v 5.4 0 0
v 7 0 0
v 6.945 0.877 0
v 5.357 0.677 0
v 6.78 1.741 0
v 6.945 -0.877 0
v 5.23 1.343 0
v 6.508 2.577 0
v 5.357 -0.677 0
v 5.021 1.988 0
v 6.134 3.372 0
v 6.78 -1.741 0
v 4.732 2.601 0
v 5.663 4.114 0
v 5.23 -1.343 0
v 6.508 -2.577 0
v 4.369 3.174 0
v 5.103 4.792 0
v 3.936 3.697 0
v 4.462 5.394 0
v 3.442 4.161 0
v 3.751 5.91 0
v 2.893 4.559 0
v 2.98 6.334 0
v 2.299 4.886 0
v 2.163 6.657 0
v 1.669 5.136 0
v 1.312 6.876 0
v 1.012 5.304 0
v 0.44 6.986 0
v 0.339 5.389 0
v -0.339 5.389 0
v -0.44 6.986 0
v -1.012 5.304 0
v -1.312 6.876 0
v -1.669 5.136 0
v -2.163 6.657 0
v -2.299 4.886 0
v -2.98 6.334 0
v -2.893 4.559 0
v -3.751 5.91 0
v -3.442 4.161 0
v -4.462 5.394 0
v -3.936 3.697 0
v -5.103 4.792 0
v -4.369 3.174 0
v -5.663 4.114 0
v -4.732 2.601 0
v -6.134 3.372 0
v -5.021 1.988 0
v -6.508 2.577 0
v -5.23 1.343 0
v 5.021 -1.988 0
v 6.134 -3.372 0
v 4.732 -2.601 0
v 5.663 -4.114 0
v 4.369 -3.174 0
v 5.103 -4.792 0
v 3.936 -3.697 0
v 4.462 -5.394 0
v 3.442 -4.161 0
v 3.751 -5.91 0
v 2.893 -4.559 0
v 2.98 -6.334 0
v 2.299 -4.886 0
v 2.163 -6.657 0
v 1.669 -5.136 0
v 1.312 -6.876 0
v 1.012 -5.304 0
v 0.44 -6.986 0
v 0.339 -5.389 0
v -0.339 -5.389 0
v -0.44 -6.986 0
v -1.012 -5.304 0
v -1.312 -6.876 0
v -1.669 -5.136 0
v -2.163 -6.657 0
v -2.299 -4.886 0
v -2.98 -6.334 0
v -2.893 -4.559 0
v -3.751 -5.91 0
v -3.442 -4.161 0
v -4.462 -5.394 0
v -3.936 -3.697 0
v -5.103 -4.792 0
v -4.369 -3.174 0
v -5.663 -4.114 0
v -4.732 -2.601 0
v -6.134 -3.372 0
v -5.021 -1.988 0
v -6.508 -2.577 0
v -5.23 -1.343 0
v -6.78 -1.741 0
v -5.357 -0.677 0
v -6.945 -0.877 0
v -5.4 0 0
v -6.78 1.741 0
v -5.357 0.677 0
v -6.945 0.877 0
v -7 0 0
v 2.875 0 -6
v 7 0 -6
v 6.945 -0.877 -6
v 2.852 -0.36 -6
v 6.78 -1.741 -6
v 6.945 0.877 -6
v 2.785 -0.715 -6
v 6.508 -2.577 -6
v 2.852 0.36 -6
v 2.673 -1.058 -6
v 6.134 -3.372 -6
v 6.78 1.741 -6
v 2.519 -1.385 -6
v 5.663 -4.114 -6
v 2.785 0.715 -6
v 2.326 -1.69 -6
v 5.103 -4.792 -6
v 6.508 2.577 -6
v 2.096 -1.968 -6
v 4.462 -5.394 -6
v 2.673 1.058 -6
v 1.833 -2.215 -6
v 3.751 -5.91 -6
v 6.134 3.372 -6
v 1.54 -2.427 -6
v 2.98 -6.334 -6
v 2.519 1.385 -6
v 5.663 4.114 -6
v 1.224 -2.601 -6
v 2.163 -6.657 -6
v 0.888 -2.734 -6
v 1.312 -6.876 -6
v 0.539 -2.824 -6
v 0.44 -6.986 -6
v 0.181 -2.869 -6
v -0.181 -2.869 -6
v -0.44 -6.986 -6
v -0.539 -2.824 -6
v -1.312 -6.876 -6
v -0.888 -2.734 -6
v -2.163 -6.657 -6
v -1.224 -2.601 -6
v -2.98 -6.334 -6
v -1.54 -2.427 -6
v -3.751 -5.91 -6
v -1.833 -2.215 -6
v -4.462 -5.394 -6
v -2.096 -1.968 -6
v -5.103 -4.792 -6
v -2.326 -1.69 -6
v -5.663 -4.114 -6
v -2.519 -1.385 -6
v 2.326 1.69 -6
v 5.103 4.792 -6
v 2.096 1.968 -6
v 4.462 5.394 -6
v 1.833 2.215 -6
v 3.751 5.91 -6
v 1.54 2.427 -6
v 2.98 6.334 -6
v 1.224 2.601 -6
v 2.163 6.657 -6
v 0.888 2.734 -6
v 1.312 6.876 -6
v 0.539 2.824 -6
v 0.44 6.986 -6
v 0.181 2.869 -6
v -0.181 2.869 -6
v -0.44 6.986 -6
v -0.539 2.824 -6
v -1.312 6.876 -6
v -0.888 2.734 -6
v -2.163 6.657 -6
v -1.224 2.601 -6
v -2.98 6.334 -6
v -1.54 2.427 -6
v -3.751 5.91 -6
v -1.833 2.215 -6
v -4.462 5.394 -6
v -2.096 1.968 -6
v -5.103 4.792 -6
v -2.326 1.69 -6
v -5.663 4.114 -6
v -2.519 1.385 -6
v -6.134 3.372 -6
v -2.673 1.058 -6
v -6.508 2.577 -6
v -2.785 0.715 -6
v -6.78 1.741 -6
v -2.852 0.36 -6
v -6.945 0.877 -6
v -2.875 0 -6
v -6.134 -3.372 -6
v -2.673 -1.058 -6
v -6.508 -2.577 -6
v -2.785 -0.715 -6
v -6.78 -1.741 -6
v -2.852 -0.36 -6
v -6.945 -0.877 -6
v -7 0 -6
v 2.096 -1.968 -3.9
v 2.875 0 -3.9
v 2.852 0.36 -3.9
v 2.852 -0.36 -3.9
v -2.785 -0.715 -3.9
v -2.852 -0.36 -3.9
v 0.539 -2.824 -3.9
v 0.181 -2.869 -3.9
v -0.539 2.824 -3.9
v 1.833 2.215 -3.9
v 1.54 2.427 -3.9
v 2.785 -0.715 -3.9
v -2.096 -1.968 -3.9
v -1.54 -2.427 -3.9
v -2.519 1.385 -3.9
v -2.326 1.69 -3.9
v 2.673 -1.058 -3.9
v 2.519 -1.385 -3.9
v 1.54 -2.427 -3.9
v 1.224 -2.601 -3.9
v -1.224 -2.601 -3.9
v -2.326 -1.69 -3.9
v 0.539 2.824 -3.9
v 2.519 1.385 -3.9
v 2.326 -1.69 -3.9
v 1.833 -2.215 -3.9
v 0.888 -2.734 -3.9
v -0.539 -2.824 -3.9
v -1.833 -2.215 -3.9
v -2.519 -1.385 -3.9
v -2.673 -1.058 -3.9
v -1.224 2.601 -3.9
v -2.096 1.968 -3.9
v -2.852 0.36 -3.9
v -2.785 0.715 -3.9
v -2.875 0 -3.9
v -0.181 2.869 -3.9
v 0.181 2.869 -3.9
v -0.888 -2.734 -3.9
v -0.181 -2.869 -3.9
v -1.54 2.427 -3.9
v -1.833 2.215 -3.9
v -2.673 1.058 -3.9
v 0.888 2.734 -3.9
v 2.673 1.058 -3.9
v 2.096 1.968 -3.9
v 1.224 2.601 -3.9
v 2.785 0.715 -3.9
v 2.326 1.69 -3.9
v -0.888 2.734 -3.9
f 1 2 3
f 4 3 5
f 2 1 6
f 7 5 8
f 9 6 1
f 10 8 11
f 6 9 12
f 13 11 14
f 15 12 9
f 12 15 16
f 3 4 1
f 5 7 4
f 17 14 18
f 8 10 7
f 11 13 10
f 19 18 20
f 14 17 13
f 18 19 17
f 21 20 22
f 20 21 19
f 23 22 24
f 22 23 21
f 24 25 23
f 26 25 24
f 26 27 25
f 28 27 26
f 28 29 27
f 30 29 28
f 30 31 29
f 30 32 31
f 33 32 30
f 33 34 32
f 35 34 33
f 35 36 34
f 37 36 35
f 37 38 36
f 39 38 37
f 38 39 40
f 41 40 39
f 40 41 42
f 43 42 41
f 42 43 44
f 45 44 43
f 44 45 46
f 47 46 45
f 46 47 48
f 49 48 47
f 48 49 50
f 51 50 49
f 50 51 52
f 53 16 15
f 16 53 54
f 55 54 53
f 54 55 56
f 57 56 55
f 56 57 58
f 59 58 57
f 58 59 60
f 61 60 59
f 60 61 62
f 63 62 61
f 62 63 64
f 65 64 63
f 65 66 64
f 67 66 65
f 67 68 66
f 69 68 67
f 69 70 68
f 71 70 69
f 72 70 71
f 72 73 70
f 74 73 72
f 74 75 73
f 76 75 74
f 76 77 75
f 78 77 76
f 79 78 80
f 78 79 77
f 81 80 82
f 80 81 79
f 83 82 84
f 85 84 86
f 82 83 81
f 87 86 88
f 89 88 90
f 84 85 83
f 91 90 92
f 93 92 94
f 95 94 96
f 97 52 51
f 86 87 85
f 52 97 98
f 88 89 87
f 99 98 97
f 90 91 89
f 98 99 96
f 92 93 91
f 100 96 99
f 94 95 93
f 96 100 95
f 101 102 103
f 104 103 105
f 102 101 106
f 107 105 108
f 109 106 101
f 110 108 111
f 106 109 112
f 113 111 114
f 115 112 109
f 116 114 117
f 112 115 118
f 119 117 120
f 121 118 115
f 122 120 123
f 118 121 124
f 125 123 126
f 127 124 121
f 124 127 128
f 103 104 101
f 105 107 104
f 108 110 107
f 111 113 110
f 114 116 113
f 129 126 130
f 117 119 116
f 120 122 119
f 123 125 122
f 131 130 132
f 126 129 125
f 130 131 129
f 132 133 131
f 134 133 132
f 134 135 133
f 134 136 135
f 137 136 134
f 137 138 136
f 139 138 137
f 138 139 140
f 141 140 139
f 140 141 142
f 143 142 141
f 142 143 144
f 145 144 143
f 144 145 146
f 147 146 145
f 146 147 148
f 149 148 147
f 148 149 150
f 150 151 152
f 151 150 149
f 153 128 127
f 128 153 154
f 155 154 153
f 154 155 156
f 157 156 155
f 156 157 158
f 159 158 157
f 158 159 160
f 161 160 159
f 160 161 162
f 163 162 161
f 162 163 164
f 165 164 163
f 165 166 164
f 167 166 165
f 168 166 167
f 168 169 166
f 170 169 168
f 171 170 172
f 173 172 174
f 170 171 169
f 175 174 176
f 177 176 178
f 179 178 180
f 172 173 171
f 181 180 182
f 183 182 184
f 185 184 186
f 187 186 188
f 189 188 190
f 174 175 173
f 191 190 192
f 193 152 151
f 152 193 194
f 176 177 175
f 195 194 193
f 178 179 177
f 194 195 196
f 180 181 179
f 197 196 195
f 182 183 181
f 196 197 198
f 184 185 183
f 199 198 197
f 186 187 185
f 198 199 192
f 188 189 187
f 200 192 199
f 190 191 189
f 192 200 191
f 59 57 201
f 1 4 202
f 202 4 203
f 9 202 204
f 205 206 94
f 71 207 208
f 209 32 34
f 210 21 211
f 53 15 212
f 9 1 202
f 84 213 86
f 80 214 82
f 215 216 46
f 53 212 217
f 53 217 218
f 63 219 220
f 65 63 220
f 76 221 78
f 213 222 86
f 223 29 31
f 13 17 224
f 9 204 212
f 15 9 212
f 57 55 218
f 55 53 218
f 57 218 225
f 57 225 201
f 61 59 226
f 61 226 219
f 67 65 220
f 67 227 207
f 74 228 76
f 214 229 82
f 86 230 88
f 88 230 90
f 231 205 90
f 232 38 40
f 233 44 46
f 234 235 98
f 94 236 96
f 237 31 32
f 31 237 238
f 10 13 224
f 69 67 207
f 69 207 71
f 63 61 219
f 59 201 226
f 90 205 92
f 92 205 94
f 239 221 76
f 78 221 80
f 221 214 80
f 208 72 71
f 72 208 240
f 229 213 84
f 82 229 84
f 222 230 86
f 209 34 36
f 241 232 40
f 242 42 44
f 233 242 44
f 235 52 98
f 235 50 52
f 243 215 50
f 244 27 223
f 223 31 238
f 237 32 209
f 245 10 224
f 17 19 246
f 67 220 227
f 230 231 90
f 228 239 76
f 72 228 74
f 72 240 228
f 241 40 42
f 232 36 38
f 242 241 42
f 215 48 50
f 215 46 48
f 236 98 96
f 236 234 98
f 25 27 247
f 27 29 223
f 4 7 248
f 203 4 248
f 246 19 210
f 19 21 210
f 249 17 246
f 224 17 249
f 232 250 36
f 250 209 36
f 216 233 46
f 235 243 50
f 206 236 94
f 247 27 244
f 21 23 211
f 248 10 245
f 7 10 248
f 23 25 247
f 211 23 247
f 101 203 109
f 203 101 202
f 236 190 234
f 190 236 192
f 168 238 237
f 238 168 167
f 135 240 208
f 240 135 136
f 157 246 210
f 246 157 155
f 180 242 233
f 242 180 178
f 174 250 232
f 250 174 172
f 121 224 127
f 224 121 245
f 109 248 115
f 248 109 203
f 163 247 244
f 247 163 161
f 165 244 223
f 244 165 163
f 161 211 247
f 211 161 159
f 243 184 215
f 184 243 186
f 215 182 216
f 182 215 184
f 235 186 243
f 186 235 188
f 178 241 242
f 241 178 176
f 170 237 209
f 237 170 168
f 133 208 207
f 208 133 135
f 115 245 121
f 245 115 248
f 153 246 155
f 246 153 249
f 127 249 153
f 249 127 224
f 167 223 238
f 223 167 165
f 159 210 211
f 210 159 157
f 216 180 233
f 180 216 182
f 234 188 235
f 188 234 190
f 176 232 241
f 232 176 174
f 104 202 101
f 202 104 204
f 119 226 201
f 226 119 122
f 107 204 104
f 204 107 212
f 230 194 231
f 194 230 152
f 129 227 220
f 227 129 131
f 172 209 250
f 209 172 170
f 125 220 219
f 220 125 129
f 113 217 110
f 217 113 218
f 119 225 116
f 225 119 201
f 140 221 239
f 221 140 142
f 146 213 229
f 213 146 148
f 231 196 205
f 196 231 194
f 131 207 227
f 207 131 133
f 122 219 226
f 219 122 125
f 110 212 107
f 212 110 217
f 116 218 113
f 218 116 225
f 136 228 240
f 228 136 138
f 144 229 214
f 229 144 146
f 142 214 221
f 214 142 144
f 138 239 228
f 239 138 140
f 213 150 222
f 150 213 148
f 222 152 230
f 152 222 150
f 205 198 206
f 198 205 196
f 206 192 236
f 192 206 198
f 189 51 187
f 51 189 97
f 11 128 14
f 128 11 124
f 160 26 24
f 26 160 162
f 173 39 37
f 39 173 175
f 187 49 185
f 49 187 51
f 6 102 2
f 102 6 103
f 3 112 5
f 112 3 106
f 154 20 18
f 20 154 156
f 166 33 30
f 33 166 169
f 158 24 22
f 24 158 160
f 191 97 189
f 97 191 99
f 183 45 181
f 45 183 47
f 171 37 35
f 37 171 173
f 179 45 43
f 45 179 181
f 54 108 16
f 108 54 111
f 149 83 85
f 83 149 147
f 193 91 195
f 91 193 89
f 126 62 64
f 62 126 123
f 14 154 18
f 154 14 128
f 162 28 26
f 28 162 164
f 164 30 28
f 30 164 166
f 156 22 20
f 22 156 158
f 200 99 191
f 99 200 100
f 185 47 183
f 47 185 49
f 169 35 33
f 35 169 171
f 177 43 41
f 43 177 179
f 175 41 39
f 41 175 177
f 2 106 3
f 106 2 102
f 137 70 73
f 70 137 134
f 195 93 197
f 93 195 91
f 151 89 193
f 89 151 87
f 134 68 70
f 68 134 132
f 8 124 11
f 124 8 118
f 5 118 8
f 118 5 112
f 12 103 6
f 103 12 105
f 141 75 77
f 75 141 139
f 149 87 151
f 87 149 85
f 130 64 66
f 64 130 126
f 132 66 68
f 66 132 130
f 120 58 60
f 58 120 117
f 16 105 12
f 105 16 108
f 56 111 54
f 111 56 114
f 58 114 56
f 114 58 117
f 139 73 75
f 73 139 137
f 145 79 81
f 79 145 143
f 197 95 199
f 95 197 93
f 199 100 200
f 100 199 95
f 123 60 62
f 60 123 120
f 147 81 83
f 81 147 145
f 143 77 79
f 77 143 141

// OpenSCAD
$fn = 50;


difference() {
	union() {
		translate(v = [0, 0, -6.0000000000]) {
			cylinder(h = 6, r = 7.0000000000);
		}
		cylinder(h = 0, r = 17.0000000000);
	}
	union() {
		translate(v = [0, 0, 0]) {
			rotate(a = [0, 0, 0]) {
				difference() {
					union() {
						#translate(v = [0, 0, -6.0000000000]) {
							cylinder(h = 6, r = 2.6000000000);
						}
						#translate(v = [0, 0, -3.9000000000]) {
							cylinder(h = 3.9000000000, r1 = 2.8750000000, r2 = 5.4000000000);
						}
						#translate(v = [0, 0, -6.0000000000]) {
							cylinder(h = 6, r = 2.8750000000);
						}
						#translate(v = [0, 0, -6.0000000000]) {
							cylinder(h = 6, r = 2.6000000000);
						}
					}
					union();
				}
			}
		}
	}
}
